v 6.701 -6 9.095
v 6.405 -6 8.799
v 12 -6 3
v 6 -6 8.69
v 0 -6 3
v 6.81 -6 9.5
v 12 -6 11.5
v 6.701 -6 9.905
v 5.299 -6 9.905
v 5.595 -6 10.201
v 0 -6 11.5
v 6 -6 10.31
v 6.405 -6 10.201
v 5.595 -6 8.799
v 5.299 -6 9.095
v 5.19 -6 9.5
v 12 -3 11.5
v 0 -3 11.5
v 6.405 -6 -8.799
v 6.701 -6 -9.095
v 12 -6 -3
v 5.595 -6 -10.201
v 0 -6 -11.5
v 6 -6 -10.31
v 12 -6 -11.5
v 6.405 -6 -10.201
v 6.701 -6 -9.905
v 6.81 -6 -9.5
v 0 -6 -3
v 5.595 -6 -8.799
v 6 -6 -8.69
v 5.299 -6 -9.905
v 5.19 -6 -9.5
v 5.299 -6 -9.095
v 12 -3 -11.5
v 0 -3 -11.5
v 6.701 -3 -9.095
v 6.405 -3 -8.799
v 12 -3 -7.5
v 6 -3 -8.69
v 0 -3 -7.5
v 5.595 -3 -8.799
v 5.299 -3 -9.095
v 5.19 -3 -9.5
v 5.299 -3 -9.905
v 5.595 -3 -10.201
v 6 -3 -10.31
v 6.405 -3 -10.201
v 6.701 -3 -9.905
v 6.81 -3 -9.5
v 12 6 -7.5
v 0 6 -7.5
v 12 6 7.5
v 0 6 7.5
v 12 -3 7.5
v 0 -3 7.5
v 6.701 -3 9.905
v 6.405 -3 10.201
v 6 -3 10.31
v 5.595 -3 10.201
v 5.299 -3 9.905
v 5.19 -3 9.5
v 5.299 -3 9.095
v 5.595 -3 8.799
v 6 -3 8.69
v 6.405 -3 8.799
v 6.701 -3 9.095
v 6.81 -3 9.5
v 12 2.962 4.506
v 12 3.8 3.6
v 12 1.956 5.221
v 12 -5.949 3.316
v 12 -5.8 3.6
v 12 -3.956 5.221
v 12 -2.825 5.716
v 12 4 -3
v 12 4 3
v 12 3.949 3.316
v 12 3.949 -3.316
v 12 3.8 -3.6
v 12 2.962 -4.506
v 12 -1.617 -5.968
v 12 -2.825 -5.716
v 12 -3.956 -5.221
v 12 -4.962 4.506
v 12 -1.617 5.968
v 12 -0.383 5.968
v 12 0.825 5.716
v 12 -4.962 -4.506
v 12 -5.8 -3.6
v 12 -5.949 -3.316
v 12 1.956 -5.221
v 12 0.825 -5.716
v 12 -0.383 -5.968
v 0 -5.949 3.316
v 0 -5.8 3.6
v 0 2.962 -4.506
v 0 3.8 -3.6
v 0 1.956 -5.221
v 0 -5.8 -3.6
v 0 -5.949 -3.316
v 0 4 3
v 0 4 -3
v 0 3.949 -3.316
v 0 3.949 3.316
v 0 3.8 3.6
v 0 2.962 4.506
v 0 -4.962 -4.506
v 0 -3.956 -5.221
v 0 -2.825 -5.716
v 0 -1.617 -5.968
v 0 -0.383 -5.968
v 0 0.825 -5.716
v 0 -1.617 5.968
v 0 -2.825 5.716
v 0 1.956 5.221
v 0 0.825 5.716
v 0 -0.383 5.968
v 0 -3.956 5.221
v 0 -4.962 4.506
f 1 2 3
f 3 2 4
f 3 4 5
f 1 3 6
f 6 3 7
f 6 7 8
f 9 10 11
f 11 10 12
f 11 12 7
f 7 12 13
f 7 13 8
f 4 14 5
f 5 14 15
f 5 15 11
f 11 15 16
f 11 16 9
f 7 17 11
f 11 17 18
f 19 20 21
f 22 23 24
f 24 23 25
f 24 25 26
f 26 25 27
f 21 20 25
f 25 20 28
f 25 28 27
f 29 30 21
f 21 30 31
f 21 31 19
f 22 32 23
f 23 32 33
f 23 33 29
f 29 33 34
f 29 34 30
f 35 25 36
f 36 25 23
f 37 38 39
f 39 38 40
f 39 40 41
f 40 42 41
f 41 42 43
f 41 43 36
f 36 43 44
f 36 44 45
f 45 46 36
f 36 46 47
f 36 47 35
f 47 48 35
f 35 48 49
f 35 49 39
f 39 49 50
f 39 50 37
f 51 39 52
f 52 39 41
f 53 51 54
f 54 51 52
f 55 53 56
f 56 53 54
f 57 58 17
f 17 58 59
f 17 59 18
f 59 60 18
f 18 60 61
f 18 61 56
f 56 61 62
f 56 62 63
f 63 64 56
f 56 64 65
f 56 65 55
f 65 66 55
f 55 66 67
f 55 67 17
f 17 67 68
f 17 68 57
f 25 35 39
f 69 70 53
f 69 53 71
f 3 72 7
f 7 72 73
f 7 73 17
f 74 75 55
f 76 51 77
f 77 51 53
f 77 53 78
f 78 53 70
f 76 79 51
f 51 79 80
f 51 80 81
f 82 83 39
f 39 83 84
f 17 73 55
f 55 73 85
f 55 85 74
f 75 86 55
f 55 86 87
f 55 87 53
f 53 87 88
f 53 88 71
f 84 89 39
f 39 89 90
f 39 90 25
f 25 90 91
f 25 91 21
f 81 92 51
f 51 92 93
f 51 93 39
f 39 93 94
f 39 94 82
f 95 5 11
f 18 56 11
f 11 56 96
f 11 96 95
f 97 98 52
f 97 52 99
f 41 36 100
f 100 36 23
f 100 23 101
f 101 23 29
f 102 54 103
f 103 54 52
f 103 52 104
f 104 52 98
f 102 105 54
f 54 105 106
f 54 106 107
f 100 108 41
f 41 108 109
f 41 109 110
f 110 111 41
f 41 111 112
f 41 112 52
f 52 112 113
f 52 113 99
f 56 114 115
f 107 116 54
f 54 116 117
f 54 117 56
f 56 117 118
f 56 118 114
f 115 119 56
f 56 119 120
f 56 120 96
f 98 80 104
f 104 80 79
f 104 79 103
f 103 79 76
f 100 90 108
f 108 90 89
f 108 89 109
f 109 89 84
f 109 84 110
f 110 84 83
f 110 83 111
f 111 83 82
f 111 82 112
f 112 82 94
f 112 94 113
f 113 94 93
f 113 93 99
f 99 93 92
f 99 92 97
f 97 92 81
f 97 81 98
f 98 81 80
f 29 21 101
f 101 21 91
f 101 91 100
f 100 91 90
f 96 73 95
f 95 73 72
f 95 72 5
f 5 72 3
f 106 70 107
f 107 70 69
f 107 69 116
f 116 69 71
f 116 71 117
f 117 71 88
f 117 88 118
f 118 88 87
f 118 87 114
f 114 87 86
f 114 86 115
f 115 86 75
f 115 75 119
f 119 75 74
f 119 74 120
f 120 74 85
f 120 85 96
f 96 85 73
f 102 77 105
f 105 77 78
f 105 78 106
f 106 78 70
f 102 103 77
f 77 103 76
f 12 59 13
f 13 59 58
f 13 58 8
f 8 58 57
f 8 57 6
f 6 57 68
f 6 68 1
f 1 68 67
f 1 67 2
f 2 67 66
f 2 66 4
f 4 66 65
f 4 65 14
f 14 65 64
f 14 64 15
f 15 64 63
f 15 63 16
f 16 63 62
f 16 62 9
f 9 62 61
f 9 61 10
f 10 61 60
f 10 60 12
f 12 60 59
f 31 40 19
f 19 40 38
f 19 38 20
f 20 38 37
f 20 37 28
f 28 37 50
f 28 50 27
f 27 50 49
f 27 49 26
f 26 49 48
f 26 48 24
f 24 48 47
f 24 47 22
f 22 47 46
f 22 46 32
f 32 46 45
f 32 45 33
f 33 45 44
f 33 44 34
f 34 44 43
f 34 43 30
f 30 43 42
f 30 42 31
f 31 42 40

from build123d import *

# Parameters (mm, degrees)
CROQUIS1_W              = 4
CROQUIS1_H              = 3
CROQUIS1_W_2            = 15
CROQUIS1_H_2            = 12
SALIENTE_EXTRUIR1_DEPTH = 12
CORTAR_EXTRUIR2_DEPTH   = 12
CROQUIS5_R              = 0.81
CORTAR_EXTRUIR3_DEPTH   = 3


with BuildPart() as part:
    # Croquis1 → Saliente-Extruir1 (new body)
    with BuildSketch(Plane(origin=(0, 0, 0), x_dir=(0, 0, -1), z_dir=(1, 0, 0))):
        with Locations((-9.5, -4.5)):
            Rectangle(CROQUIS1_W, CROQUIS1_H)
        Rectangle(CROQUIS1_W_2, CROQUIS1_H_2)
        with Locations((9.5, -4.5)):
            Rectangle(CROQUIS1_W, CROQUIS1_H)
    extrude(amount=SALIENTE_EXTRUIR1_DEPTH)

    # Croquis4 → Cortar-Extruir2 (cut)
    with BuildSketch(Plane(origin=(12, 0, 0), x_dir=(0, 0, -1), z_dir=(1, 0, 0))):
        with BuildLine():
            Line((-3, -6), (3, -6))
            ThreePointArc((3, -6), (3.316227766, -5.948683298), (3.6, -5.8))
            ThreePointArc((3.6, -5.8), (6, -1), (3.6, 3.799999999))
            ThreePointArc((3.6, 3.799999999), (3.316227766, 3.948683297), (3, 3.999999999))
            Line((3, 3.999999999), (-3, 3.999999999))
            ThreePointArc((-3, 3.999999999), (-3.316227766, 3.948683297), (-3.6, 3.799999999))
            ThreePointArc((-3.6, 3.799999999), (-6, -1), (-3.6, -5.8))
            ThreePointArc((-3.6, -5.8), (-3.316227766, -5.948683298), (-3, -6))
        make_face()
    extrude(amount=-CORTAR_EXTRUIR2_DEPTH, mode=Mode.SUBTRACT)

    # Croquis5 → Cortar-Extruir3 (cut)
    with BuildSketch(Plane(origin=(0, -3, 0), x_dir=(1, 0, 0), z_dir=(0, 1, 0))):
        with Locations(Location((6, 9.5, 0), (0, 0, 270))):
            Circle(CROQUIS5_R)
        with Locations(Location((6, -9.5, 0), (0, 0, 90))):
            Circle(CROQUIS5_R)
    extrude(amount=-CORTAR_EXTRUIR3_DEPTH, mode=Mode.SUBTRACT)


solid = part.part
